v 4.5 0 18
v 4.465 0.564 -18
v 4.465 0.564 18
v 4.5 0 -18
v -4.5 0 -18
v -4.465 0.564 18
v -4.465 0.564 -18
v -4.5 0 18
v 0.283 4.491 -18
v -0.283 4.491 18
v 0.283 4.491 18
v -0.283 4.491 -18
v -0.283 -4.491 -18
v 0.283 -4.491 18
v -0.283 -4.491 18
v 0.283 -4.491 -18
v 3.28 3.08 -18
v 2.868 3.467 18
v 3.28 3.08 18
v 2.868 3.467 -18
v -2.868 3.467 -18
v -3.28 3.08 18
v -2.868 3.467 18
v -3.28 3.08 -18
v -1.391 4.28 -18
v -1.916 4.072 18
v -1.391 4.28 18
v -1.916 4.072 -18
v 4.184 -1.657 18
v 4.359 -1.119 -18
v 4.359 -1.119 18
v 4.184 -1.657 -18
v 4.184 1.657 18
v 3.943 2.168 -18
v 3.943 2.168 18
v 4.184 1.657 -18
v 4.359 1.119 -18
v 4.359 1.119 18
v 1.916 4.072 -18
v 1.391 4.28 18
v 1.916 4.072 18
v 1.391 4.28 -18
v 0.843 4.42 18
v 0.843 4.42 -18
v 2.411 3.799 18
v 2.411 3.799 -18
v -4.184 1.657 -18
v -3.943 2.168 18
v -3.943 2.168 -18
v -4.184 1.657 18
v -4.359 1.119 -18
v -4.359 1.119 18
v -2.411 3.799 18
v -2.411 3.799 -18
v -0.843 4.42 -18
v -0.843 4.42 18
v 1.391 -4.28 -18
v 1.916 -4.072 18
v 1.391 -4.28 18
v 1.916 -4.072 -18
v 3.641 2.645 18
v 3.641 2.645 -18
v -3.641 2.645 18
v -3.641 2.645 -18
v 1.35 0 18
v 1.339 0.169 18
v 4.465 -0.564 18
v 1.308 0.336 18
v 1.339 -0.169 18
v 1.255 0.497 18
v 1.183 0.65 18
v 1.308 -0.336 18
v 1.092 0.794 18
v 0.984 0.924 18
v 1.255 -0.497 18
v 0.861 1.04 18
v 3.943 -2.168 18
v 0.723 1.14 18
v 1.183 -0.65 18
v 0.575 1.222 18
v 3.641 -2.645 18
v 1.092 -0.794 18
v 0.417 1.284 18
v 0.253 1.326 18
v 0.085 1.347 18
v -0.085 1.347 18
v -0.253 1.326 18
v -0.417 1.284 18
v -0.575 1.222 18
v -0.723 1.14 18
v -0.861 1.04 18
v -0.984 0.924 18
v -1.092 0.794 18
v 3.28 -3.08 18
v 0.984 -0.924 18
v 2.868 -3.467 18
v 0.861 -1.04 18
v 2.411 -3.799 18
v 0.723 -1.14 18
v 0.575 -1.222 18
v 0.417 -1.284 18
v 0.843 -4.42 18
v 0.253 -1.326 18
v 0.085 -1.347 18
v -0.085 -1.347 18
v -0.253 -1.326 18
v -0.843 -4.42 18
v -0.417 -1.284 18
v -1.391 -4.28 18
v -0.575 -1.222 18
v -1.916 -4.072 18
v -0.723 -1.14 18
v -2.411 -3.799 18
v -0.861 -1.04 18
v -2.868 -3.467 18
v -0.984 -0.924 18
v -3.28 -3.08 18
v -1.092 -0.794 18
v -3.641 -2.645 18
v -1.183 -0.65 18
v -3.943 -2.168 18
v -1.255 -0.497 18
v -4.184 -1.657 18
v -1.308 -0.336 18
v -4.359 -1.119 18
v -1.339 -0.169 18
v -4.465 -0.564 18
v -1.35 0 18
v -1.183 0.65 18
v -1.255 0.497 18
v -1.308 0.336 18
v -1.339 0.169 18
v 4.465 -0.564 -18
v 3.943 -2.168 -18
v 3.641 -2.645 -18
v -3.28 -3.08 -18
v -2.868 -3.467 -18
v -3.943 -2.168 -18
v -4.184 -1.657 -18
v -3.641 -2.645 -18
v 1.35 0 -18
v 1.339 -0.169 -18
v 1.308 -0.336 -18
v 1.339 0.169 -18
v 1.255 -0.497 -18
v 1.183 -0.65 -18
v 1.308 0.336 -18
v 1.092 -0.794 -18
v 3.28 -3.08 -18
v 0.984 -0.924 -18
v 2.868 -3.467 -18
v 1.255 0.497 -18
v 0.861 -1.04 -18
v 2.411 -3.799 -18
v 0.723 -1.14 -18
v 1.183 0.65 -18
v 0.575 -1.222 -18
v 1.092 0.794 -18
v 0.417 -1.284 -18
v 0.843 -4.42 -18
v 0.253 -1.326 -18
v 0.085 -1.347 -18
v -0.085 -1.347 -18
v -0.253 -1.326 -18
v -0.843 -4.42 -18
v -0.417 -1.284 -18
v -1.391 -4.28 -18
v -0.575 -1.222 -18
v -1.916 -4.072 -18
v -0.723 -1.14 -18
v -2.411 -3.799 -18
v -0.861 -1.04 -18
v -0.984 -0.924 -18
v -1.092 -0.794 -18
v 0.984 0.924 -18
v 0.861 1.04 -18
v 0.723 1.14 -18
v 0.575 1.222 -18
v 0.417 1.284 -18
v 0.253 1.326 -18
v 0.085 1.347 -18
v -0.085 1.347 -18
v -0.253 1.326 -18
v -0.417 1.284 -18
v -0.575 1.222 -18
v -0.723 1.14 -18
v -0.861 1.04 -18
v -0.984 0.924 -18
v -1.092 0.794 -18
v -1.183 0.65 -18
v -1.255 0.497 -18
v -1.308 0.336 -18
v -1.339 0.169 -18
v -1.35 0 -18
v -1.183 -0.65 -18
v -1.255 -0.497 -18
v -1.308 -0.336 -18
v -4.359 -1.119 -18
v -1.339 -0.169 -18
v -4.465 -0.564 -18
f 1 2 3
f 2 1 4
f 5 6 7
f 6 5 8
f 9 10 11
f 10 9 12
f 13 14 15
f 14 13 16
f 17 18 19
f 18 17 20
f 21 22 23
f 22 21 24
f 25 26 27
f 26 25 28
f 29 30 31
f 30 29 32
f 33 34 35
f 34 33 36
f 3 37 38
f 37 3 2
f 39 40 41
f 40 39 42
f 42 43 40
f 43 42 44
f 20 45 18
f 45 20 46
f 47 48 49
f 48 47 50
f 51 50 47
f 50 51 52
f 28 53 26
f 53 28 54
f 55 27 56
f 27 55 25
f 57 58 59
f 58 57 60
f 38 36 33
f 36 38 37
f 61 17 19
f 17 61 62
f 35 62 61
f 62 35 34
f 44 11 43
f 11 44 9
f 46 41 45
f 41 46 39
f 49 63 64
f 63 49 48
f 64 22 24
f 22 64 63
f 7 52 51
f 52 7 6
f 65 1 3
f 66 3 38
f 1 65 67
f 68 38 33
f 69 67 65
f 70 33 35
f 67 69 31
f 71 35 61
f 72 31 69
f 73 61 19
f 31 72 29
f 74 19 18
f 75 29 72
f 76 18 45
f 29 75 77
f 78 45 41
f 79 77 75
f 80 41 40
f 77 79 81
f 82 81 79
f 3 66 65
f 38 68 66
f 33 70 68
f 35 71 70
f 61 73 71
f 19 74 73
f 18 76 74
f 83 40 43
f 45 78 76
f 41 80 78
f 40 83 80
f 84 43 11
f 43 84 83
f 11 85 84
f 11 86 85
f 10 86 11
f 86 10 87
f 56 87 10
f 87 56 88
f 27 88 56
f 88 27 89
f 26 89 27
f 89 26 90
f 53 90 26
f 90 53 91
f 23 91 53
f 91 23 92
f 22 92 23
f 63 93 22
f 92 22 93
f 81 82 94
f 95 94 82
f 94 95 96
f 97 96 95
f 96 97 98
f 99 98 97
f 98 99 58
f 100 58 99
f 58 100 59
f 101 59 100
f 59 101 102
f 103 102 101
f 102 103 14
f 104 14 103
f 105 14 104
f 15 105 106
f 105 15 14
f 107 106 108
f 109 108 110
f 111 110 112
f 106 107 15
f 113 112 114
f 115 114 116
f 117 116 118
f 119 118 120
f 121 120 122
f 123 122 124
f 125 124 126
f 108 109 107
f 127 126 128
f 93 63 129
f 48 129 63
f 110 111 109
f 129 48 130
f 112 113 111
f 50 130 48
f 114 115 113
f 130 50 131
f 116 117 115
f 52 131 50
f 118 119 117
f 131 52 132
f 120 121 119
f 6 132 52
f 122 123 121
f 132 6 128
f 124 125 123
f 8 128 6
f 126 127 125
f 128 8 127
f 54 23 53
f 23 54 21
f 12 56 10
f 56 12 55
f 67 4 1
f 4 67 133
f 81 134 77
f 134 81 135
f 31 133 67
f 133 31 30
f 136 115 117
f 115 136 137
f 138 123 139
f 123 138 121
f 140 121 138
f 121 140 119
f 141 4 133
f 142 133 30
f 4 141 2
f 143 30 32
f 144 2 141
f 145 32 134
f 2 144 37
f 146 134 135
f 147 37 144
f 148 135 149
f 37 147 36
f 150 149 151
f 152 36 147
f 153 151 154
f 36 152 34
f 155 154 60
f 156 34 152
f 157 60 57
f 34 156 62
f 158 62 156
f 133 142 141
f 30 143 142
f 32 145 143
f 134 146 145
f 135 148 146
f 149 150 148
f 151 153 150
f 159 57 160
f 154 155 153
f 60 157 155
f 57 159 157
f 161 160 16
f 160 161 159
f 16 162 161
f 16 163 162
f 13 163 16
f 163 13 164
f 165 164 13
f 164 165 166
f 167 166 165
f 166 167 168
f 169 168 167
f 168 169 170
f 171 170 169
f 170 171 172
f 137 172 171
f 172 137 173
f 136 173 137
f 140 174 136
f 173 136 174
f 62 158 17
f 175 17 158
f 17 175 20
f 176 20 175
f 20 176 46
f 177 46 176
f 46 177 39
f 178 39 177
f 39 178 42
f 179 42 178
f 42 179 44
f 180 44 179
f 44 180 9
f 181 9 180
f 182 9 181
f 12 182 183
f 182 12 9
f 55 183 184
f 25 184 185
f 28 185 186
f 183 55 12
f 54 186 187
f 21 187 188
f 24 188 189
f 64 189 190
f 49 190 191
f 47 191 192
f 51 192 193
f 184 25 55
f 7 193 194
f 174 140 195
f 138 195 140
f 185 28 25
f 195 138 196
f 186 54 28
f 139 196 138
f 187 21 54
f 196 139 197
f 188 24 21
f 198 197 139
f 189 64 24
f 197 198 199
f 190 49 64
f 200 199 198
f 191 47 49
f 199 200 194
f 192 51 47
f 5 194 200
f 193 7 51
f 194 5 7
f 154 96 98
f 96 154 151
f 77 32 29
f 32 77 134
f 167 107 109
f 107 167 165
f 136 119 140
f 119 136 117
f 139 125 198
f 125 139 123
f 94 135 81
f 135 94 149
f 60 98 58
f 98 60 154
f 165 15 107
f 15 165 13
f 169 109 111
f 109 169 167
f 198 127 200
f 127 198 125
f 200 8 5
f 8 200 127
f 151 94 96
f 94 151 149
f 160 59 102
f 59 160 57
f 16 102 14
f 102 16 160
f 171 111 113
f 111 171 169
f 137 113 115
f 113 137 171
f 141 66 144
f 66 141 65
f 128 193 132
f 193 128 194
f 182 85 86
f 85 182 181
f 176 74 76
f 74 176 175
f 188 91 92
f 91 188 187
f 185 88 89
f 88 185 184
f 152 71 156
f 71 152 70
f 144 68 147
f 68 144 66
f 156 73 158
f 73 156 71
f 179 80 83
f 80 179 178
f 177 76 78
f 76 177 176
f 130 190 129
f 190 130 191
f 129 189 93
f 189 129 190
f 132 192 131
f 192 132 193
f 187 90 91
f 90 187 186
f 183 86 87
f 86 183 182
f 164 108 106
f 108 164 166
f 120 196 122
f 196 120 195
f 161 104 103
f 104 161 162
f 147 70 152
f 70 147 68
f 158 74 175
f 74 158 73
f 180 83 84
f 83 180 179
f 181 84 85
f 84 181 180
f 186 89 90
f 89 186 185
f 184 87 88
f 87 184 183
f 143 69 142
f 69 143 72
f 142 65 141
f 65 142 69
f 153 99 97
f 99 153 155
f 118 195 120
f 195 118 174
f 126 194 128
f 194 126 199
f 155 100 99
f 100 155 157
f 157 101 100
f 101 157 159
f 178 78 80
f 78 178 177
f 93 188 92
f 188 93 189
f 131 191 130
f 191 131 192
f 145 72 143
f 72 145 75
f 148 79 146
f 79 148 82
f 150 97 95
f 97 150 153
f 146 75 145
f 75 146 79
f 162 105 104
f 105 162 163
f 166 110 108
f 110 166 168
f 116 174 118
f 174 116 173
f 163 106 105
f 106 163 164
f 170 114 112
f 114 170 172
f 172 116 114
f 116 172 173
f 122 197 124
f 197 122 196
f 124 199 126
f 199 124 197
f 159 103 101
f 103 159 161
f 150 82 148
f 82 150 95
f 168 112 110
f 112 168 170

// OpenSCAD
$fn = 50;


difference() {
	union() {
		translate(v = [0, 0, -18.0000000000]) {
			cylinder(h = 36, r = 4.5000000000);
		}
	}
	union() {
		translate(v = [0, 0, -100.0000000000]) {
			cylinder(h = 200, r = 1.3500000000);
		}
	}
}
